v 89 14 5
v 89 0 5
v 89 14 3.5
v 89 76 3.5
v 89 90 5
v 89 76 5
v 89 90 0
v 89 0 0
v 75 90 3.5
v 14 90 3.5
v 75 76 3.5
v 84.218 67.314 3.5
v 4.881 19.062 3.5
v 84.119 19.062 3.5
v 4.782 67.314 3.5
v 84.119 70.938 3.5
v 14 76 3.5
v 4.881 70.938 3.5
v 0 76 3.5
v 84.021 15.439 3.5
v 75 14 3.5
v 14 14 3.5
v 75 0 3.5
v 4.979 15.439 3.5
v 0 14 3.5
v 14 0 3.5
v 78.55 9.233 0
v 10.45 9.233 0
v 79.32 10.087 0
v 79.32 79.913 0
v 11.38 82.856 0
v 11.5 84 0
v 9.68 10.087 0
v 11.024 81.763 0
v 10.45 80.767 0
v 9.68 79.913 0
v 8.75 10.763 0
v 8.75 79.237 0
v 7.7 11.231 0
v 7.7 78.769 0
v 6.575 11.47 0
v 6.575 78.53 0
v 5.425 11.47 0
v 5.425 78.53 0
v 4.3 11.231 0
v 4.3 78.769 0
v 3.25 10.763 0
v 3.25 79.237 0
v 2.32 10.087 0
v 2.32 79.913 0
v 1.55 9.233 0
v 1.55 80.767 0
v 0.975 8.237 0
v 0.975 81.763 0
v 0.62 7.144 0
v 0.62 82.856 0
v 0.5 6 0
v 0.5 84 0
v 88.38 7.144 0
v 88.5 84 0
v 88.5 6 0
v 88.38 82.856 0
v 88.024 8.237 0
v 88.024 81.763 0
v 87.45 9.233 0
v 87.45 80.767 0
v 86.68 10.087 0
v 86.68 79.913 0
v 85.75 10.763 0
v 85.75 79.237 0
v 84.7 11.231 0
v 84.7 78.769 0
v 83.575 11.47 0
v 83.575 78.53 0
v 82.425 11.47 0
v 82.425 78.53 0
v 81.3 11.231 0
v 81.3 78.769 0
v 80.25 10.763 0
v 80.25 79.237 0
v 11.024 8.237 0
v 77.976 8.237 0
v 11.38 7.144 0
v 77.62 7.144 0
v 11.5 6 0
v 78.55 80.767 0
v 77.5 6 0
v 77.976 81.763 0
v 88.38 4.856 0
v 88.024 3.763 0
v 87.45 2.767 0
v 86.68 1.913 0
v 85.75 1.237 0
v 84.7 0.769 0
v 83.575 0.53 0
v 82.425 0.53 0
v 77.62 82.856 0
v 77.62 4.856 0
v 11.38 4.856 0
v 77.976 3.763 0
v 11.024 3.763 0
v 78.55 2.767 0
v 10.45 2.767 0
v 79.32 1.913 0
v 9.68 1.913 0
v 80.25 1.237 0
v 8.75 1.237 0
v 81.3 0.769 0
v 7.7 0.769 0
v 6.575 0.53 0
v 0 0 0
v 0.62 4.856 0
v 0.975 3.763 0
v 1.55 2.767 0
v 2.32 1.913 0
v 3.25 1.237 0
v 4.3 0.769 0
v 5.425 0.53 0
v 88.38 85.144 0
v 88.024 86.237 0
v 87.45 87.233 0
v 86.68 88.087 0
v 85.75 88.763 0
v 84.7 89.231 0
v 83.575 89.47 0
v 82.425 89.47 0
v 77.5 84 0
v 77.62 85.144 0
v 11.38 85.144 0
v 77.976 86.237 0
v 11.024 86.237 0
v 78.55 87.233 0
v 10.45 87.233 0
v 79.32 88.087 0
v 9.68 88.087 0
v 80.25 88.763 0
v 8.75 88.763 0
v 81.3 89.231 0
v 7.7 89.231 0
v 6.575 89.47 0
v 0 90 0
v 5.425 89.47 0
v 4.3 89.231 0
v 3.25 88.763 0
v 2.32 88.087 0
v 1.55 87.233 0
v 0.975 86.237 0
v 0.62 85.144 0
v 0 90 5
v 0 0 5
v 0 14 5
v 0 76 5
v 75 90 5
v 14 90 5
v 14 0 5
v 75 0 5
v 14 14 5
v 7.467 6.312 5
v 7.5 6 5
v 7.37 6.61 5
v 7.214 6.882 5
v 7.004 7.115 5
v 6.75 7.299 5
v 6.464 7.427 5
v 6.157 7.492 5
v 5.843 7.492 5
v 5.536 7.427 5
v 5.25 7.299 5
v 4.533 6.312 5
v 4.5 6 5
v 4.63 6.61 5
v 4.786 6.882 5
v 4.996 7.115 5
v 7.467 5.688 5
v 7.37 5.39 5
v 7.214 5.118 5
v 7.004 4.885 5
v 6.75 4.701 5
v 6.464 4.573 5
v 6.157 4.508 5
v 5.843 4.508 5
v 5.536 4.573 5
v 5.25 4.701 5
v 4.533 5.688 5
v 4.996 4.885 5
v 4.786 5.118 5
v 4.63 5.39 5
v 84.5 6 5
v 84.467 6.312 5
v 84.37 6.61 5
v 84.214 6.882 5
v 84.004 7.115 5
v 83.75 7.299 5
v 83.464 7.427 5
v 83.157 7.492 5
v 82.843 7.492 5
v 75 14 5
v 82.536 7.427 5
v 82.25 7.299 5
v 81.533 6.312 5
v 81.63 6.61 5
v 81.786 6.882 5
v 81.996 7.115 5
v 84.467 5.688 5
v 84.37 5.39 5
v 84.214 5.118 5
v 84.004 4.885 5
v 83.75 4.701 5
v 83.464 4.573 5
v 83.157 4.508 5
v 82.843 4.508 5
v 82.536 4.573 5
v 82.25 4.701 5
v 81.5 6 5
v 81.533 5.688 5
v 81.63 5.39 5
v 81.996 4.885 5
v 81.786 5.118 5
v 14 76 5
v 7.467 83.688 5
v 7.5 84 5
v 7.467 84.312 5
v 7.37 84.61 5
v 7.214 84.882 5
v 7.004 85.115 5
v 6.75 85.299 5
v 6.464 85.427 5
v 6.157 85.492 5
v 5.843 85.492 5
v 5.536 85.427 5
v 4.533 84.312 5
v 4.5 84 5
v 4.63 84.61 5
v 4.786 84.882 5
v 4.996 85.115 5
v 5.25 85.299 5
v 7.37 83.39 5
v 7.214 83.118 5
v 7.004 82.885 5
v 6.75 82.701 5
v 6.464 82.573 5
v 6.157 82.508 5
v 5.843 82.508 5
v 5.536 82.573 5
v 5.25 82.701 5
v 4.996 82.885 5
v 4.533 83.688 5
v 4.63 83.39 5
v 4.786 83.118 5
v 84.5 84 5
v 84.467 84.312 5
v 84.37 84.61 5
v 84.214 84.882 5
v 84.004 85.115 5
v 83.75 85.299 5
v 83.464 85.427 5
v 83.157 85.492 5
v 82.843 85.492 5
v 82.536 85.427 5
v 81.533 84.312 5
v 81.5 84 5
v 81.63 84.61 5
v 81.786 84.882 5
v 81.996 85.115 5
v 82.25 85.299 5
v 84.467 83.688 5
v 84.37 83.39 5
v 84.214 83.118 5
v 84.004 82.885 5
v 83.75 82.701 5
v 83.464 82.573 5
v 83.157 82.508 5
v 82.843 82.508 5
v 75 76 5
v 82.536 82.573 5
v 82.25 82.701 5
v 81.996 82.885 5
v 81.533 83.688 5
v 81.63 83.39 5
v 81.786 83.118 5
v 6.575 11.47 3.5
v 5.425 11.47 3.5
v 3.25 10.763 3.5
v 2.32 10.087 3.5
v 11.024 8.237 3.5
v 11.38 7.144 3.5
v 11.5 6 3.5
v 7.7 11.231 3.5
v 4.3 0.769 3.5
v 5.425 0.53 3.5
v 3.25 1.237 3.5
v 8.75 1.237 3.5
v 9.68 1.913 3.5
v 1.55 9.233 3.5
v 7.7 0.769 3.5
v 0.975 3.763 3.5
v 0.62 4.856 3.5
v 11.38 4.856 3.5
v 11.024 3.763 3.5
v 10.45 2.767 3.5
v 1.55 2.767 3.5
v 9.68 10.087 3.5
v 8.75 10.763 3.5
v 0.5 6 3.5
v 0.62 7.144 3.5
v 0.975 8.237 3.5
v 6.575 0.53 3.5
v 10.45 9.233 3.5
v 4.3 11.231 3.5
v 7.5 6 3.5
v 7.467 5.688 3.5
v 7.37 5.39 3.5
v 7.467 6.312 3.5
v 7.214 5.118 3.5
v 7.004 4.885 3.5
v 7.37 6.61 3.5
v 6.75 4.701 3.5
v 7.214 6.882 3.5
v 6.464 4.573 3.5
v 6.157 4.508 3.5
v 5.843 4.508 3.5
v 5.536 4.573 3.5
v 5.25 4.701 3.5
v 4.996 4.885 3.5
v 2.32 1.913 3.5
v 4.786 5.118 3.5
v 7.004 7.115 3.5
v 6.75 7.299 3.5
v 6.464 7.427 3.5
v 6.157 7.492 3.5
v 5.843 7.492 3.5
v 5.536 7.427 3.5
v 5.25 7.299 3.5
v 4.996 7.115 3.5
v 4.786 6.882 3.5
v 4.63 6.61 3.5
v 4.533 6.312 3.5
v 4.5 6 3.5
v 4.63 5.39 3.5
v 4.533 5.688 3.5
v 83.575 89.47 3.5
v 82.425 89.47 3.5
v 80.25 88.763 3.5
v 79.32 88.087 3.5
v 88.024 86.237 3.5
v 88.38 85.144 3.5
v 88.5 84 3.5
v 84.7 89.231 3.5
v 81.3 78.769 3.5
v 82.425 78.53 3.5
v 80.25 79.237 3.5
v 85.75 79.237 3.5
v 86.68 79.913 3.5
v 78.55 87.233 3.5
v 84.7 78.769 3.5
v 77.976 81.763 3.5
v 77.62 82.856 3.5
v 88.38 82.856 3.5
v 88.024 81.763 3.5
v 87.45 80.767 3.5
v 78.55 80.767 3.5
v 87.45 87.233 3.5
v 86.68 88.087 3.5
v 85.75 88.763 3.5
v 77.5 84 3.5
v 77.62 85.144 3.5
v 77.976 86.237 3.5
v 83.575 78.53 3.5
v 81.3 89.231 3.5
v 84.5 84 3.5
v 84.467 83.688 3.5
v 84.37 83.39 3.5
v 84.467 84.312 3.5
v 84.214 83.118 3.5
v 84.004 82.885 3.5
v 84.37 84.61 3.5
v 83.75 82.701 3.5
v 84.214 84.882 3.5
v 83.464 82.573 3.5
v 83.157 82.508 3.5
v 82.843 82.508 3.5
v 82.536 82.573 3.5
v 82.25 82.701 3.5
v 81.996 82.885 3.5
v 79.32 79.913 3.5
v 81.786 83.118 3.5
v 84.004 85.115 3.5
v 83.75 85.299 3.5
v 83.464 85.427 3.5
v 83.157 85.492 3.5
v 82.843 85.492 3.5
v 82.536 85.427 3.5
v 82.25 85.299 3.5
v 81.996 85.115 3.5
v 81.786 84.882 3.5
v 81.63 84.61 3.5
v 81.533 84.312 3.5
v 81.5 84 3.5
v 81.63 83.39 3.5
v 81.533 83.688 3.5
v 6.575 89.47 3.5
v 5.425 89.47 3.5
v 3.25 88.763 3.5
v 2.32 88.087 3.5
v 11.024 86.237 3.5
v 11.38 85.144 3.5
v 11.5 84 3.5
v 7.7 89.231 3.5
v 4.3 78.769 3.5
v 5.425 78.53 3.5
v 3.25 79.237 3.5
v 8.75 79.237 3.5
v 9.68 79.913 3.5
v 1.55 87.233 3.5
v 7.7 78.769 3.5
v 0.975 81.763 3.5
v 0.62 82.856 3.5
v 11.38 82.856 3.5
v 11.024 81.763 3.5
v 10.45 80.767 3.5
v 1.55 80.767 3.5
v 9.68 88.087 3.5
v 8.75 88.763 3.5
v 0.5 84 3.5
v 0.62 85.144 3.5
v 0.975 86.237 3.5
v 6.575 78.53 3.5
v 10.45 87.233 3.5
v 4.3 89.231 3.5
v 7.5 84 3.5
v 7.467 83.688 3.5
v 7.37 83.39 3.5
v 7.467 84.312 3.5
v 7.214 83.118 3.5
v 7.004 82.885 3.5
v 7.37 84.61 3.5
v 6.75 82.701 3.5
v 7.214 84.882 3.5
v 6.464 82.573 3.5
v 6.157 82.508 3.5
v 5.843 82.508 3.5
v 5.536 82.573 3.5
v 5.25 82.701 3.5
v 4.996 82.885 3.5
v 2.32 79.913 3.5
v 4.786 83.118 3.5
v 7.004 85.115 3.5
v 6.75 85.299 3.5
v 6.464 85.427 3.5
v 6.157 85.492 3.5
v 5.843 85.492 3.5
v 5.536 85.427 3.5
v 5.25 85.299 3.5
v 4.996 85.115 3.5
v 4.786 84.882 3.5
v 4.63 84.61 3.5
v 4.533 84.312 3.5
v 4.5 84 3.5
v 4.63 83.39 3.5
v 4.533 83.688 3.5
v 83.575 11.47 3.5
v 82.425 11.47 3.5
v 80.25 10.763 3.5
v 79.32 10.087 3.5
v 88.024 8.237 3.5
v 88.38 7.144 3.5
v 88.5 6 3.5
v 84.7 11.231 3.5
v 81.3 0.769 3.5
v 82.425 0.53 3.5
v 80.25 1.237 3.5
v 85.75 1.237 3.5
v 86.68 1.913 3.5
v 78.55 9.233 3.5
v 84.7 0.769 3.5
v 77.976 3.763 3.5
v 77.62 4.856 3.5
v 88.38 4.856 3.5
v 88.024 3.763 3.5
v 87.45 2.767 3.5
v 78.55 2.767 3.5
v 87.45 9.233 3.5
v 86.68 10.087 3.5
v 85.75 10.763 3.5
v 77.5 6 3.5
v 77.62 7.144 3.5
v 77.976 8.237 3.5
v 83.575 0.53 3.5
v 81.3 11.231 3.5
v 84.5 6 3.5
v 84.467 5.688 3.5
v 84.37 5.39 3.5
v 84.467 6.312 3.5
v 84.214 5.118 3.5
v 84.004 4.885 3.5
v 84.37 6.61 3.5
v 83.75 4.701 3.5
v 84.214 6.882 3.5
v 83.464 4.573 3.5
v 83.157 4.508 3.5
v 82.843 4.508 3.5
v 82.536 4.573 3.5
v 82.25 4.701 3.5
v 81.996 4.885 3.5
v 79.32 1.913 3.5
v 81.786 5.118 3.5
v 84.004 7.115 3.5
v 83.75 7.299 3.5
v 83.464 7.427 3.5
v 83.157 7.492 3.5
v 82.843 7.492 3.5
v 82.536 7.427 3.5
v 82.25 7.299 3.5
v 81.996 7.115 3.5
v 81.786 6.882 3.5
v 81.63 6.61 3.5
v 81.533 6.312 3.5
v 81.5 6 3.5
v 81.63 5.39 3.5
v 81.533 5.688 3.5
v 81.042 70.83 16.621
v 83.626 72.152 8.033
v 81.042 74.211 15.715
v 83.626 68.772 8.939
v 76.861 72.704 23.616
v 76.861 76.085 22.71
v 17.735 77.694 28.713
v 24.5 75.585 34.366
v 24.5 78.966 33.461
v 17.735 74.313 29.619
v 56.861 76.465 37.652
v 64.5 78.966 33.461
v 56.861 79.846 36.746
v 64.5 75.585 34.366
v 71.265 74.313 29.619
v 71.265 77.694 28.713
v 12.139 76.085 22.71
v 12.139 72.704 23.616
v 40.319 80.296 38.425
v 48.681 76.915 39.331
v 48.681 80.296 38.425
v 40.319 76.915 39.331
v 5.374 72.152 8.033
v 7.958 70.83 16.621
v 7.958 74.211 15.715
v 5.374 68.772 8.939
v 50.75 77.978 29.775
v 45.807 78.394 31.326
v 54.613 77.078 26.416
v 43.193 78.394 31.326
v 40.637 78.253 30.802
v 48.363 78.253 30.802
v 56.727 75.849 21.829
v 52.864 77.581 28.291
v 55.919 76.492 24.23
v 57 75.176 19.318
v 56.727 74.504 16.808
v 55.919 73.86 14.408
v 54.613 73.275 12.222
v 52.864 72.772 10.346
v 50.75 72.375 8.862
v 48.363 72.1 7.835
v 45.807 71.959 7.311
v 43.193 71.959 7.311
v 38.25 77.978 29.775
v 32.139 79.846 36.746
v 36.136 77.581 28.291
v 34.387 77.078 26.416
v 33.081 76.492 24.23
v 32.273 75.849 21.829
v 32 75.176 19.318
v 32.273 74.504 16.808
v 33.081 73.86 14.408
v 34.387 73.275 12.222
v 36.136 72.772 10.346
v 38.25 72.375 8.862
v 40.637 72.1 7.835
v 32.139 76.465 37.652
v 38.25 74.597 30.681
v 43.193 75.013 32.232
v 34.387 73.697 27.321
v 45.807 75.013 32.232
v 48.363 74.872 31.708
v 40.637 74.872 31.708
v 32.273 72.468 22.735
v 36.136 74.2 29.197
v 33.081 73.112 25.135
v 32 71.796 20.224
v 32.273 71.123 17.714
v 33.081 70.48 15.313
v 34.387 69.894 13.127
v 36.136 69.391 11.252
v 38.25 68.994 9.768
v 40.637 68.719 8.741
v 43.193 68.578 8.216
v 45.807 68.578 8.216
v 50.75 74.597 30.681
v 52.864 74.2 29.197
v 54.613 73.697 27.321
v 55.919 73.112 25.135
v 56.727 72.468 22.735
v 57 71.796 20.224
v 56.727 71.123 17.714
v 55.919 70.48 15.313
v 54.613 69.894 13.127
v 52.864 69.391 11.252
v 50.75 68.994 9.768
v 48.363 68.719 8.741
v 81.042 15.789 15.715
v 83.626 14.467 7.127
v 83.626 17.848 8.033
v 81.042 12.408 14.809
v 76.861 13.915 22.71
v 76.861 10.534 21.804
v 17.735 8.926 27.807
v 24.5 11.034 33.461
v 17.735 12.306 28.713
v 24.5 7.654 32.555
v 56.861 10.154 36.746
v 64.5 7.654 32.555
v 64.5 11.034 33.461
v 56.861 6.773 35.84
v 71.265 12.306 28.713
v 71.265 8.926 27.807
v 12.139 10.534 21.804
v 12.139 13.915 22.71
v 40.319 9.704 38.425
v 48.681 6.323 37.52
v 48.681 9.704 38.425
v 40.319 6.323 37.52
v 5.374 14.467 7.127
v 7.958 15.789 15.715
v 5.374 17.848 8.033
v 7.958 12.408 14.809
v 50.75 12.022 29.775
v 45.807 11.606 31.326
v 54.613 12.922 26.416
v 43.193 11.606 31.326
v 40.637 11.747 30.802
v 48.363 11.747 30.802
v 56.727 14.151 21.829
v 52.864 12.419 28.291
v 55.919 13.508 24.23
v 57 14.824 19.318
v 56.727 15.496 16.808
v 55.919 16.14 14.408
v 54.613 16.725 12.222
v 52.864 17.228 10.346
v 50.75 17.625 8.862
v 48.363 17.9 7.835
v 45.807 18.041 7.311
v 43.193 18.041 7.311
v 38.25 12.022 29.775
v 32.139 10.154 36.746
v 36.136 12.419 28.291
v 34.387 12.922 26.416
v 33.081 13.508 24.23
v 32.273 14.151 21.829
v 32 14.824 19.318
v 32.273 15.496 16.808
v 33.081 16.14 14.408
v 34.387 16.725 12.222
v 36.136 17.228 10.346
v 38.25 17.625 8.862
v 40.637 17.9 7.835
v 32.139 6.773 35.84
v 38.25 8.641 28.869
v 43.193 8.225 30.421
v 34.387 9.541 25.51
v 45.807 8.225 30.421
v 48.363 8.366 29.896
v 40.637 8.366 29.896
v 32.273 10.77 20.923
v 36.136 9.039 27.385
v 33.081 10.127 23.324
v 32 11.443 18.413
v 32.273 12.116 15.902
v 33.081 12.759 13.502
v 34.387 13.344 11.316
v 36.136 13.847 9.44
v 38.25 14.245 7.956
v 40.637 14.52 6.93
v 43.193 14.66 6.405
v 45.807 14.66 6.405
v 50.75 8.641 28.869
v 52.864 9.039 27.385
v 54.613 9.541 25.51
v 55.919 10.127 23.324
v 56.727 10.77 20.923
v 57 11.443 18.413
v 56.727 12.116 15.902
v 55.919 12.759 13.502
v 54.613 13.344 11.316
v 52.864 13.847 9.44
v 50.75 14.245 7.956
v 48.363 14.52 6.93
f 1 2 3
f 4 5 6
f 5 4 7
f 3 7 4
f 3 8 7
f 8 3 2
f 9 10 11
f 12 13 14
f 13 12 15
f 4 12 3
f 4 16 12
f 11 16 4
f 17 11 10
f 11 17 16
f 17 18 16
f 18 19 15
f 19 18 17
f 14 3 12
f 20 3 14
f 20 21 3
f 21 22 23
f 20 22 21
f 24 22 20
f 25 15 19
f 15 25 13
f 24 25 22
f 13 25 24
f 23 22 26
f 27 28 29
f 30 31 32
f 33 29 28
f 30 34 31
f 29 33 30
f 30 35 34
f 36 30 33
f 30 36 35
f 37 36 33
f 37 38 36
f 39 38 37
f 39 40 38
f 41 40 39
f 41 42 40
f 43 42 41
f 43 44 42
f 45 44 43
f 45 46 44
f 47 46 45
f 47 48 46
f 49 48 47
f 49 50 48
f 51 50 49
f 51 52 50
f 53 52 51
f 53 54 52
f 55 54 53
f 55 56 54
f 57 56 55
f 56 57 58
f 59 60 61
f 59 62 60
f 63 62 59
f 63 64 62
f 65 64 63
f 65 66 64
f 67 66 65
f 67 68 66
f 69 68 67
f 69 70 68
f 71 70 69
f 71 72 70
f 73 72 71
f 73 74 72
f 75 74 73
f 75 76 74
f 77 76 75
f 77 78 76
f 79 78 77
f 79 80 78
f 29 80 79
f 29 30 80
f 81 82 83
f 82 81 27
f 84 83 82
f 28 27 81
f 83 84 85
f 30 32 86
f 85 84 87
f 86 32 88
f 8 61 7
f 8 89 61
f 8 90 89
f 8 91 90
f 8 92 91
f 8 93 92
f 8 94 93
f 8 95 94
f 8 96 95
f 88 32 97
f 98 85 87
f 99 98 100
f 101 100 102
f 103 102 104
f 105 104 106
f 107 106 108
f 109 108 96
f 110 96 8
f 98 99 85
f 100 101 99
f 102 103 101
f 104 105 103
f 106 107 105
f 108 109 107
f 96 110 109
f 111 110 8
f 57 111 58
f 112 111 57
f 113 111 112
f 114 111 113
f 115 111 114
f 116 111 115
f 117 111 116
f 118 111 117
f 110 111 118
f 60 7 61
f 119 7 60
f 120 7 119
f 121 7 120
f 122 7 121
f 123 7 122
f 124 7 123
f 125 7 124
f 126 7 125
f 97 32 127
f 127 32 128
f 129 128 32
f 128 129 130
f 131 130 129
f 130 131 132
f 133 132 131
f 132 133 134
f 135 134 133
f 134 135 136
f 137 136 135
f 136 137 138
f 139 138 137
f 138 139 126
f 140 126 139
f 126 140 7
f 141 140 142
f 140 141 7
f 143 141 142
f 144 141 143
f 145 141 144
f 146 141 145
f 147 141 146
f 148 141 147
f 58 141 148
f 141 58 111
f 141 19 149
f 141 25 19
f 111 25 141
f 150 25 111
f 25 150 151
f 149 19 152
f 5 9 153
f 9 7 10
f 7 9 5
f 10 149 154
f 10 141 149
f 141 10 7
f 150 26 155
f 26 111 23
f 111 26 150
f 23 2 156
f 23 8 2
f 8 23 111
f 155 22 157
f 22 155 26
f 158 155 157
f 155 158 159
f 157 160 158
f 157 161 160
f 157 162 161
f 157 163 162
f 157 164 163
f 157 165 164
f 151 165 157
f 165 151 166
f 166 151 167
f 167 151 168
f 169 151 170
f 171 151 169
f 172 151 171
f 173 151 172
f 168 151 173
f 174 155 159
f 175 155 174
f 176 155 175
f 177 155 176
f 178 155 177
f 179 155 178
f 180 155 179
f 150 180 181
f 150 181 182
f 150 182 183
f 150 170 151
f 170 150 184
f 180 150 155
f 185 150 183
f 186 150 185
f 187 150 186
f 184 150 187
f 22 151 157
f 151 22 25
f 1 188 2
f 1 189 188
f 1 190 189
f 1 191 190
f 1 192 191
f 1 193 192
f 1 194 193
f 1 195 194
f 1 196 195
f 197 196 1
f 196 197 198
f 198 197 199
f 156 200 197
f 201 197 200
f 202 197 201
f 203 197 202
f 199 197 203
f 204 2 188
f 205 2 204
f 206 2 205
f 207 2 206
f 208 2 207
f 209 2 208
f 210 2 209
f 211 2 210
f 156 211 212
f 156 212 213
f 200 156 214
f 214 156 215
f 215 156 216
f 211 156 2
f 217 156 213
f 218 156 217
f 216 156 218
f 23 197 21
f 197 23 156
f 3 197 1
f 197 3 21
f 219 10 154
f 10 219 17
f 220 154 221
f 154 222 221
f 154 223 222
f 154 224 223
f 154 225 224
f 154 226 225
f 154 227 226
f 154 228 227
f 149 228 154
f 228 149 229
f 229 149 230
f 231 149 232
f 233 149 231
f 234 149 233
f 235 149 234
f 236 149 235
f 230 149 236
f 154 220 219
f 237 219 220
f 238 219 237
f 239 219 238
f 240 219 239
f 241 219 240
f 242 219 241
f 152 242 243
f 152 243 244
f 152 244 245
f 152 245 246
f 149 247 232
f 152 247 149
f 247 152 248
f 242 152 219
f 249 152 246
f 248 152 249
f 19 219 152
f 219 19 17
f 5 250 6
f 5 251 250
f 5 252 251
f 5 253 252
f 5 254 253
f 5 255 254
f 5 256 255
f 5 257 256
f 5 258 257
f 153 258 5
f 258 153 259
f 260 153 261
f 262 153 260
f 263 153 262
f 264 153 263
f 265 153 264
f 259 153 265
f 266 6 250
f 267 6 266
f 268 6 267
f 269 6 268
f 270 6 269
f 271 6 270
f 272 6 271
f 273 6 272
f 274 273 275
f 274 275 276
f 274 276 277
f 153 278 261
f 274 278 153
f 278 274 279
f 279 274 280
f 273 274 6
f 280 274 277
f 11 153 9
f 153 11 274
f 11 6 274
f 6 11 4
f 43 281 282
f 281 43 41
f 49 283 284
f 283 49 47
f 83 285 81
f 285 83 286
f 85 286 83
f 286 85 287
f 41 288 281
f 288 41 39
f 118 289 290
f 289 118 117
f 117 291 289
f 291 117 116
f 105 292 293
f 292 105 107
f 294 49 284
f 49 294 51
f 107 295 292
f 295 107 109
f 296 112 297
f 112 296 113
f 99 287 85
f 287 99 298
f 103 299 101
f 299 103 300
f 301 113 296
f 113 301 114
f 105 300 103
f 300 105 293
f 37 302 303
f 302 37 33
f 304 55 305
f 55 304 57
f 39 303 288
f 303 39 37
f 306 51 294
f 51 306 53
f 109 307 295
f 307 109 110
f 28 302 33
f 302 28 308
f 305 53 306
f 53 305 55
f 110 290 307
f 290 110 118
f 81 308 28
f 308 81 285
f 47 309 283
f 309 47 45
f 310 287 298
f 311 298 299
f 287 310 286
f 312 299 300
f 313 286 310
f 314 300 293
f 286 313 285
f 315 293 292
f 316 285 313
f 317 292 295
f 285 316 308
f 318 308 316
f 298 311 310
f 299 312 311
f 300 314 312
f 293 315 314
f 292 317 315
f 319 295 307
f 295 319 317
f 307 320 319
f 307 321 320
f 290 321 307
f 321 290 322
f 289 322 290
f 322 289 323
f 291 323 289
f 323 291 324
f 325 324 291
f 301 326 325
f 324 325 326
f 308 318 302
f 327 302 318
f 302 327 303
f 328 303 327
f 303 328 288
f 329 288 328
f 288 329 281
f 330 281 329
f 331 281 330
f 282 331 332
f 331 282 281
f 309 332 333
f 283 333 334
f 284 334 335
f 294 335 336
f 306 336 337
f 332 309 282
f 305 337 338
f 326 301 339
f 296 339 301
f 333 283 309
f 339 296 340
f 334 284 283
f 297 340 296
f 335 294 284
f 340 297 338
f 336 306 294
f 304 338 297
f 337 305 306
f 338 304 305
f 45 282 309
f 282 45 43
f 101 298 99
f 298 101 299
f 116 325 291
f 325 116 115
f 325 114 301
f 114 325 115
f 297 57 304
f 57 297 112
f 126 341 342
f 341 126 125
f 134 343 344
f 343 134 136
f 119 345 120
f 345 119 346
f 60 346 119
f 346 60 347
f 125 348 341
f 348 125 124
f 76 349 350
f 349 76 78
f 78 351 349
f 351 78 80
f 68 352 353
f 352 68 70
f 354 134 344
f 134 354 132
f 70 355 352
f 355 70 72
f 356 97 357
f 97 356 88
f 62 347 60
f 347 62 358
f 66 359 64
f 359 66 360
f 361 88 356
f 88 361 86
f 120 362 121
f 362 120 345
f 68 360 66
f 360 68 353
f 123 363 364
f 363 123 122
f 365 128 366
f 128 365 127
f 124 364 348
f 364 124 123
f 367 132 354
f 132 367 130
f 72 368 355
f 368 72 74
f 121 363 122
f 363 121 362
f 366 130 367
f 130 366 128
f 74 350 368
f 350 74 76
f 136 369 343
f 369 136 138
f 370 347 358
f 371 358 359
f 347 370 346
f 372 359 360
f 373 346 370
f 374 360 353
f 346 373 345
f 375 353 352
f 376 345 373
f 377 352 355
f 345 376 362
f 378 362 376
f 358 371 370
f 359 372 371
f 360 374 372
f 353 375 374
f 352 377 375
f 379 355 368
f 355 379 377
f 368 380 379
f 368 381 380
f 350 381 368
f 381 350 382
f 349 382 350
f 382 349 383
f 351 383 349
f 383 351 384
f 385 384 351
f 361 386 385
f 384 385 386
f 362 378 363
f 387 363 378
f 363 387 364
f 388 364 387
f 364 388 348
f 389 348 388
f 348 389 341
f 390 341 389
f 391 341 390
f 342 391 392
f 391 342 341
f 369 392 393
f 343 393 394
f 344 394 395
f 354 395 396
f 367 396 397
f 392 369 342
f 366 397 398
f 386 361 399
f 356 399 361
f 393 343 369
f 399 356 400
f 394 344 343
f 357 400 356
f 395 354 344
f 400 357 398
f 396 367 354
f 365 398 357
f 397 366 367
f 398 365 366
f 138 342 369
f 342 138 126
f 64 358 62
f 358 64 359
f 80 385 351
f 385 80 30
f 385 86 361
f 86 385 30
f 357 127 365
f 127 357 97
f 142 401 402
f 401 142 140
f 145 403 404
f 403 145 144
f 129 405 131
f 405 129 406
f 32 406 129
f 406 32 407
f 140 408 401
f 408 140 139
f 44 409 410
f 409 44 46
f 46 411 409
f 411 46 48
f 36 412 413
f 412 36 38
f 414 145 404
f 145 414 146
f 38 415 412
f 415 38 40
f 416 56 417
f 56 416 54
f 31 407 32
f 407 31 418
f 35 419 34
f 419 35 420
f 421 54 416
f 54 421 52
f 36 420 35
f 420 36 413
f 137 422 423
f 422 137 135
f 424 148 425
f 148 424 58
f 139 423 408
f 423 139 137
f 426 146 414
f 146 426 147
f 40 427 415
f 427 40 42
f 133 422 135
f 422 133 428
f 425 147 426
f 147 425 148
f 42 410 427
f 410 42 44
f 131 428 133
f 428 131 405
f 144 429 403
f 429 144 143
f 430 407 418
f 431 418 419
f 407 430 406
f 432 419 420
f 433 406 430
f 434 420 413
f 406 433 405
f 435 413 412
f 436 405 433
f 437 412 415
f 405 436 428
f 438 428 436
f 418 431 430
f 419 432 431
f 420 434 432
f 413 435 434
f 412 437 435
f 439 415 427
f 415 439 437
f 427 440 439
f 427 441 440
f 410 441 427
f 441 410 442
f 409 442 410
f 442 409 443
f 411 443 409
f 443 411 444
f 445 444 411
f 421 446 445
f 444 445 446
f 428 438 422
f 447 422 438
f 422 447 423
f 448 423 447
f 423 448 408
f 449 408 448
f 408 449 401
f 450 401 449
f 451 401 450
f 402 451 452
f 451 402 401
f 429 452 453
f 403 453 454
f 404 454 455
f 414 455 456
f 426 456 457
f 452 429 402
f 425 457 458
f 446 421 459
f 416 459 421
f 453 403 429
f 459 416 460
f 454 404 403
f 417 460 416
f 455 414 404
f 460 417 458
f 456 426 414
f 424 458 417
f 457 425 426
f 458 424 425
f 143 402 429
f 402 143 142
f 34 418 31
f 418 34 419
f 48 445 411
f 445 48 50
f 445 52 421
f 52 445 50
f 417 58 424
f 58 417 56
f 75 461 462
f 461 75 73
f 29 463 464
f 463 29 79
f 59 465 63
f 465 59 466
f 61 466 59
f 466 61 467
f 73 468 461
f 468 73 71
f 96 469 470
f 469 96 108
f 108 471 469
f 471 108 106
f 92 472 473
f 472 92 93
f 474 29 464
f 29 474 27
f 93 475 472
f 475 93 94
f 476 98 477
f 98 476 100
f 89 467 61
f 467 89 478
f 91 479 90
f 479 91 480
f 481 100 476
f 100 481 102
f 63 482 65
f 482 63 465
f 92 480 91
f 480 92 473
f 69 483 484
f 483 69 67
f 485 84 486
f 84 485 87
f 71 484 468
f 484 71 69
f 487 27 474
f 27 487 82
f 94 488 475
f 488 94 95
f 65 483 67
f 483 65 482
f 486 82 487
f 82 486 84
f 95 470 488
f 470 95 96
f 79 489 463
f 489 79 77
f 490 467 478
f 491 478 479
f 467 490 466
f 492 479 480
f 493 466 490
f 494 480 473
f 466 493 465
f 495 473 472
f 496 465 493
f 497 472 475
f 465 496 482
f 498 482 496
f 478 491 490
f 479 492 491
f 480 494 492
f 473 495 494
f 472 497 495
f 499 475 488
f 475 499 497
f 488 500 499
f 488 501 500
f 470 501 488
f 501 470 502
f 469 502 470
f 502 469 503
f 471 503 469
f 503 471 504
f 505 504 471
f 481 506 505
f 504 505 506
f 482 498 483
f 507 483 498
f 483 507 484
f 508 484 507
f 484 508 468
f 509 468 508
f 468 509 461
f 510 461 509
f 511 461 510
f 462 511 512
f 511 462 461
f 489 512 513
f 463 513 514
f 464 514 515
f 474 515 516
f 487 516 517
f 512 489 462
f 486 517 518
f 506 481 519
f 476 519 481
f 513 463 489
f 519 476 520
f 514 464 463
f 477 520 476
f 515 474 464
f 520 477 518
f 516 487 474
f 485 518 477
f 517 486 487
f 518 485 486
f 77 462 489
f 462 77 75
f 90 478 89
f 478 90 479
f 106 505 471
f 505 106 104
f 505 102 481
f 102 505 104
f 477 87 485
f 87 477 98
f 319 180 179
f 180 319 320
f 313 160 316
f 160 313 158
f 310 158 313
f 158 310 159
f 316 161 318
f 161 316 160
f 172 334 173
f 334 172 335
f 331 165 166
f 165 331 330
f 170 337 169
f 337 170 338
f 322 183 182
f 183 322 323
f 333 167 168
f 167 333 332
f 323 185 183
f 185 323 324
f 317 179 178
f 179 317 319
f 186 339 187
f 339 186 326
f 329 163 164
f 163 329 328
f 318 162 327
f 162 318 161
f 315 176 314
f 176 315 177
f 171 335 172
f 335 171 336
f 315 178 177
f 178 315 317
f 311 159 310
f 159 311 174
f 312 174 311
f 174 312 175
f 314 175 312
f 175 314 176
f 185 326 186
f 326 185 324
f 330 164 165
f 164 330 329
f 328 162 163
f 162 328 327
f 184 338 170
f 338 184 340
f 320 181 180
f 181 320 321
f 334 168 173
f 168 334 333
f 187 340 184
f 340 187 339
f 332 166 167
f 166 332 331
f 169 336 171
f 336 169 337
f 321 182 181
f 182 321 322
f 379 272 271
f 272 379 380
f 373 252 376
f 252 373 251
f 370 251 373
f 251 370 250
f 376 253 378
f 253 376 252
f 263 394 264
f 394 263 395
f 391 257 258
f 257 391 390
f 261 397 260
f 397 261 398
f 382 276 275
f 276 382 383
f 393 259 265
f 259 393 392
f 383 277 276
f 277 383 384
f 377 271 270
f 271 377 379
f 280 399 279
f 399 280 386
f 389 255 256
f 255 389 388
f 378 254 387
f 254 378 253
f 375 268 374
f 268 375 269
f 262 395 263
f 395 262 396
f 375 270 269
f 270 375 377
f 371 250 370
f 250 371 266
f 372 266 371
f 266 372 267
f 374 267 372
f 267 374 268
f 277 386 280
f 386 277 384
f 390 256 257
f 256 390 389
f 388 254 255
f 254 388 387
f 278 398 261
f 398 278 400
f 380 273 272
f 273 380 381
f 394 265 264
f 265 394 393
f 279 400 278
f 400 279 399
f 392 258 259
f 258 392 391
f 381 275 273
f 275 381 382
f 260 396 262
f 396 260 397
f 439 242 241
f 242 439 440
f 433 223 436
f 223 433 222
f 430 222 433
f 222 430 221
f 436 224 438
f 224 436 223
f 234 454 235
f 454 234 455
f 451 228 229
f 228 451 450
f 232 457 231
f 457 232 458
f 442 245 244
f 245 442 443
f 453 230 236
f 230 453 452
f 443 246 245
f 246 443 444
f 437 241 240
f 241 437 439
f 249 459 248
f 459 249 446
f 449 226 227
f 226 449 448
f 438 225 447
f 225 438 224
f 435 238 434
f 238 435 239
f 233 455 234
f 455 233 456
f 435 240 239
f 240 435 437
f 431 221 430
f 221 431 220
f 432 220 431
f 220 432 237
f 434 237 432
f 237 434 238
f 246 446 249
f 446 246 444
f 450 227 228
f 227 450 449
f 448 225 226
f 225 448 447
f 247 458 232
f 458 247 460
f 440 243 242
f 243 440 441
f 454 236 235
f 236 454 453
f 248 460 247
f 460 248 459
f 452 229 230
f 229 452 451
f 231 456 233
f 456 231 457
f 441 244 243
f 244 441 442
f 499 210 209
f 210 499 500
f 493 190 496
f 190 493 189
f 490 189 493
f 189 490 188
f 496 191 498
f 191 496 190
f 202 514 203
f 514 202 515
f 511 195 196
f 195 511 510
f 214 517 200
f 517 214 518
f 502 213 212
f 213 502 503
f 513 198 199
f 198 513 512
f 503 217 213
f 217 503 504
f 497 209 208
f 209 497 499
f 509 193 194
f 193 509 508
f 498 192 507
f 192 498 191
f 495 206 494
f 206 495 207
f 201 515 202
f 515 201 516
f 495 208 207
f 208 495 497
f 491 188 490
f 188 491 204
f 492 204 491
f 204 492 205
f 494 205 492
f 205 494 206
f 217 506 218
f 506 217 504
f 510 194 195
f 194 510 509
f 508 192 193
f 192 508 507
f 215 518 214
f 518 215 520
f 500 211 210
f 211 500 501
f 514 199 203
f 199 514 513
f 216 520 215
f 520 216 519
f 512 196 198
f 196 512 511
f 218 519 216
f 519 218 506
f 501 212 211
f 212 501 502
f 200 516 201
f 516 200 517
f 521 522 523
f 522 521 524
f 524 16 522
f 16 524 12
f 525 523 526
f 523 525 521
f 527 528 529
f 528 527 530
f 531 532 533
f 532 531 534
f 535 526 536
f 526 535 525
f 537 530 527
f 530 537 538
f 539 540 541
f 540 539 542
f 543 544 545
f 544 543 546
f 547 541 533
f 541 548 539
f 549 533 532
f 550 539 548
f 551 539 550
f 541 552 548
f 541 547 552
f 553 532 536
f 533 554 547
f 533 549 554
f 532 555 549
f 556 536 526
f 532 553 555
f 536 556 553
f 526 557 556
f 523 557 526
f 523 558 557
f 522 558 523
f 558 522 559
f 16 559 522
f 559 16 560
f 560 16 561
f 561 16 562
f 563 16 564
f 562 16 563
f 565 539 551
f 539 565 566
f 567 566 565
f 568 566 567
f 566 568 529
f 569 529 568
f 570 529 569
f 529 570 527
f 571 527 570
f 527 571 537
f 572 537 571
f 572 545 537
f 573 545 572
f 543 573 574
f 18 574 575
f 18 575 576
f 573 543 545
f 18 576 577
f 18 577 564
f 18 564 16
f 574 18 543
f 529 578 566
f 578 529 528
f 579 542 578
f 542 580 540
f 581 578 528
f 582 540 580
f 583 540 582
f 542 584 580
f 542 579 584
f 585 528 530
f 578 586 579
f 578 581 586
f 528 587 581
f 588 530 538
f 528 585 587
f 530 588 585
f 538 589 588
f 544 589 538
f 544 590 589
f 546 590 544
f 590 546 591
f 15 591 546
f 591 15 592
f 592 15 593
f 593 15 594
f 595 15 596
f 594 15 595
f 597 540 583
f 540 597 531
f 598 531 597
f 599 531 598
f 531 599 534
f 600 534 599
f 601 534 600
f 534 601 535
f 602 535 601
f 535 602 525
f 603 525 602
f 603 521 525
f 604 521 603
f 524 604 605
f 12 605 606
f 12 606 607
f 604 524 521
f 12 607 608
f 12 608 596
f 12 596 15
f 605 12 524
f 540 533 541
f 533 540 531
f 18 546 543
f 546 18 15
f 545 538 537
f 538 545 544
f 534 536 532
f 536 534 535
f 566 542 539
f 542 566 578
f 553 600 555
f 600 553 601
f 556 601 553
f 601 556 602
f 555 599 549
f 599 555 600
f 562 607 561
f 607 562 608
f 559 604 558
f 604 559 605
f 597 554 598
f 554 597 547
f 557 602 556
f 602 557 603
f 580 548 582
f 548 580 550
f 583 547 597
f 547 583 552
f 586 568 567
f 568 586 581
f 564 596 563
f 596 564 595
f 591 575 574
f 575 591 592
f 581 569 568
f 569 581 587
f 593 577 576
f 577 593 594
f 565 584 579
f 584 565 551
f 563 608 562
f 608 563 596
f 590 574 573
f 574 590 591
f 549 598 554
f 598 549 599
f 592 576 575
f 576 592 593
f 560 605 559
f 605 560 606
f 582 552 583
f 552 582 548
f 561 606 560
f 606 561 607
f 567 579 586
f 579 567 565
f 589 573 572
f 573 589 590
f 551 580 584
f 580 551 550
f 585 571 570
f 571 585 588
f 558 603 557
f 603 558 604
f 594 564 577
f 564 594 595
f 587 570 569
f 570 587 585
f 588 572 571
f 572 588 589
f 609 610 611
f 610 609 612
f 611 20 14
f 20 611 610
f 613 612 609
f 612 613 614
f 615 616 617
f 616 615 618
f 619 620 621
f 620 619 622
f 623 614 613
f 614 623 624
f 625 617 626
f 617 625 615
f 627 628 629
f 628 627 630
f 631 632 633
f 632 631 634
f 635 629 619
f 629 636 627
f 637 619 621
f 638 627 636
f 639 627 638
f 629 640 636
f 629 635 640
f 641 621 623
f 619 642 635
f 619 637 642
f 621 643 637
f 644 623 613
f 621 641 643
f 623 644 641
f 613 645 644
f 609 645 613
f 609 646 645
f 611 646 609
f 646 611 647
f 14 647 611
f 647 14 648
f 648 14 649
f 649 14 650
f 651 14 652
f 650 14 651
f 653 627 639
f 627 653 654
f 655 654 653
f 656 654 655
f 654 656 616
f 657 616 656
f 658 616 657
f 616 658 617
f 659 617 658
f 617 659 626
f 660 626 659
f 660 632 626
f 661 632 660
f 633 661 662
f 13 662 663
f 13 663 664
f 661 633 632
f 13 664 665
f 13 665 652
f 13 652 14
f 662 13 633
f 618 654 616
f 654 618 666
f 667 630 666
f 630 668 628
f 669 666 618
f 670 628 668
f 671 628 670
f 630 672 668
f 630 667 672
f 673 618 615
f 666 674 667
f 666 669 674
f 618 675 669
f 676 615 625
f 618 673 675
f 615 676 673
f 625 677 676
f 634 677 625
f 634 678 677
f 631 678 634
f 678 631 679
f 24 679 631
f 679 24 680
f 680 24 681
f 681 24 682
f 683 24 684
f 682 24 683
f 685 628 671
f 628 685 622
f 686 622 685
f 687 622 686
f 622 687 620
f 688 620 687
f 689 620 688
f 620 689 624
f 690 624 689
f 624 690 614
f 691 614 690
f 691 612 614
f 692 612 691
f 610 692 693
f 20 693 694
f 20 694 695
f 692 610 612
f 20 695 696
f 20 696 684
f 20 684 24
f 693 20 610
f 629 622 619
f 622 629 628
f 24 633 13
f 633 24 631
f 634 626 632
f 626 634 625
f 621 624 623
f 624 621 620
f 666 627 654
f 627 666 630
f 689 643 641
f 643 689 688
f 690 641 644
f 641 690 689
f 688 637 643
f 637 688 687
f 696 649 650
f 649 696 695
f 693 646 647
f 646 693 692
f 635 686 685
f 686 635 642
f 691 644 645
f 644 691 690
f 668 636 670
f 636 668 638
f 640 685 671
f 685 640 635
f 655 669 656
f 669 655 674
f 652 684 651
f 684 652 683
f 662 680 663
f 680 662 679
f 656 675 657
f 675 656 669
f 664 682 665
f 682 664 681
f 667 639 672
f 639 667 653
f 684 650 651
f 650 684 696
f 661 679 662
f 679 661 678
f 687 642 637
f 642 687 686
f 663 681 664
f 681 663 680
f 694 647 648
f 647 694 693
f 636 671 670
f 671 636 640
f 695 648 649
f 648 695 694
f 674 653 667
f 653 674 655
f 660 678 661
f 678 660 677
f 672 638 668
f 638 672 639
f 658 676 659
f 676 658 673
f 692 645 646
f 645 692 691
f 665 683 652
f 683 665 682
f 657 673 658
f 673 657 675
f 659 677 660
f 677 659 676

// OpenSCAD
width                 = 89;
height                = 90;
thickness             =  3.5;
enforcement_thickness =  1.5;
enforcement_width     = 14;
holder_diameter       = 80;
holder_hole           = 25;
hole                  =  3;
enforcement_hole      = 11;
hole_position         = 12;
holder_position       = 20;
holder_hole_position  = 20;
$fn = 30;

module plate() {    
    cube([width, height, thickness]);

    //enforcement
    translate([0, 0, thickness])
    cube([enforcement_width, enforcement_width, enforcement_thickness]);

    translate([width-enforcement_width, 0, thickness])
    cube([enforcement_width, enforcement_width, enforcement_thickness]);

    translate([0, height-enforcement_width, thickness])
    cube([enforcement_width, enforcement_width, enforcement_thickness]);

    translate([width-enforcement_width, height-enforcement_width, thickness])
    cube([enforcement_width, enforcement_width, enforcement_thickness]);
}

module plate_with_holes() {
    difference() {
        plate();

        //large holes
        translate([0.5*hole_position, 0.5*hole_position, -1])
        cylinder(d = enforcement_hole, h = thickness+1);

        translate([width-0.5*hole_position, height-0.5*hole_position, -1])
        cylinder(d = enforcement_hole, h = thickness+1);

        translate([0.5*hole_position, height-0.5*hole_position, -1])
        cylinder(d = enforcement_hole, h = thickness+1);

        translate([width-0.5*hole_position, 0.5*hole_position, -1])
        cylinder(d = enforcement_hole, h = thickness+1);

        //small holes
        translate([0.5*hole_position, 0.5*hole_position, -1])
        cylinder(d = hole, h = thickness+enforcement_thickness+2);

        translate([width-0.5*hole_position, height-0.5*hole_position, -1])
        cylinder(d = hole, h = thickness+enforcement_thickness+2);

        translate([0.5*hole_position, height-0.5*hole_position, -1])
        cylinder(d = hole, h = thickness+enforcement_thickness+2);

        translate([width-0.5*hole_position, 0.5*hole_position, -1])
        cylinder(d = hole, h = thickness+enforcement_thickness+2);
    }

}

module holder() {
    
    translate([0.5*(holder_diameter+width-holder_diameter), 0, 0])
    difference() {
        cylinder( d = holder_diameter, h = thickness );

        translate([-0.5*holder_diameter-1, -holder_diameter-1, -1])
        cube([ holder_diameter+2, holder_diameter+2, thickness+2]);

        translate([0, holder_hole_position, -1])
        cylinder( d = holder_hole, h = thickness+2 );
        
    }
}

plate_with_holes();

translate([0, height - holder_position, 0])
rotate([75, 0, 0])
holder();


translate([0, holder_position, 0])
rotate([105, 0, 0])
holder();
